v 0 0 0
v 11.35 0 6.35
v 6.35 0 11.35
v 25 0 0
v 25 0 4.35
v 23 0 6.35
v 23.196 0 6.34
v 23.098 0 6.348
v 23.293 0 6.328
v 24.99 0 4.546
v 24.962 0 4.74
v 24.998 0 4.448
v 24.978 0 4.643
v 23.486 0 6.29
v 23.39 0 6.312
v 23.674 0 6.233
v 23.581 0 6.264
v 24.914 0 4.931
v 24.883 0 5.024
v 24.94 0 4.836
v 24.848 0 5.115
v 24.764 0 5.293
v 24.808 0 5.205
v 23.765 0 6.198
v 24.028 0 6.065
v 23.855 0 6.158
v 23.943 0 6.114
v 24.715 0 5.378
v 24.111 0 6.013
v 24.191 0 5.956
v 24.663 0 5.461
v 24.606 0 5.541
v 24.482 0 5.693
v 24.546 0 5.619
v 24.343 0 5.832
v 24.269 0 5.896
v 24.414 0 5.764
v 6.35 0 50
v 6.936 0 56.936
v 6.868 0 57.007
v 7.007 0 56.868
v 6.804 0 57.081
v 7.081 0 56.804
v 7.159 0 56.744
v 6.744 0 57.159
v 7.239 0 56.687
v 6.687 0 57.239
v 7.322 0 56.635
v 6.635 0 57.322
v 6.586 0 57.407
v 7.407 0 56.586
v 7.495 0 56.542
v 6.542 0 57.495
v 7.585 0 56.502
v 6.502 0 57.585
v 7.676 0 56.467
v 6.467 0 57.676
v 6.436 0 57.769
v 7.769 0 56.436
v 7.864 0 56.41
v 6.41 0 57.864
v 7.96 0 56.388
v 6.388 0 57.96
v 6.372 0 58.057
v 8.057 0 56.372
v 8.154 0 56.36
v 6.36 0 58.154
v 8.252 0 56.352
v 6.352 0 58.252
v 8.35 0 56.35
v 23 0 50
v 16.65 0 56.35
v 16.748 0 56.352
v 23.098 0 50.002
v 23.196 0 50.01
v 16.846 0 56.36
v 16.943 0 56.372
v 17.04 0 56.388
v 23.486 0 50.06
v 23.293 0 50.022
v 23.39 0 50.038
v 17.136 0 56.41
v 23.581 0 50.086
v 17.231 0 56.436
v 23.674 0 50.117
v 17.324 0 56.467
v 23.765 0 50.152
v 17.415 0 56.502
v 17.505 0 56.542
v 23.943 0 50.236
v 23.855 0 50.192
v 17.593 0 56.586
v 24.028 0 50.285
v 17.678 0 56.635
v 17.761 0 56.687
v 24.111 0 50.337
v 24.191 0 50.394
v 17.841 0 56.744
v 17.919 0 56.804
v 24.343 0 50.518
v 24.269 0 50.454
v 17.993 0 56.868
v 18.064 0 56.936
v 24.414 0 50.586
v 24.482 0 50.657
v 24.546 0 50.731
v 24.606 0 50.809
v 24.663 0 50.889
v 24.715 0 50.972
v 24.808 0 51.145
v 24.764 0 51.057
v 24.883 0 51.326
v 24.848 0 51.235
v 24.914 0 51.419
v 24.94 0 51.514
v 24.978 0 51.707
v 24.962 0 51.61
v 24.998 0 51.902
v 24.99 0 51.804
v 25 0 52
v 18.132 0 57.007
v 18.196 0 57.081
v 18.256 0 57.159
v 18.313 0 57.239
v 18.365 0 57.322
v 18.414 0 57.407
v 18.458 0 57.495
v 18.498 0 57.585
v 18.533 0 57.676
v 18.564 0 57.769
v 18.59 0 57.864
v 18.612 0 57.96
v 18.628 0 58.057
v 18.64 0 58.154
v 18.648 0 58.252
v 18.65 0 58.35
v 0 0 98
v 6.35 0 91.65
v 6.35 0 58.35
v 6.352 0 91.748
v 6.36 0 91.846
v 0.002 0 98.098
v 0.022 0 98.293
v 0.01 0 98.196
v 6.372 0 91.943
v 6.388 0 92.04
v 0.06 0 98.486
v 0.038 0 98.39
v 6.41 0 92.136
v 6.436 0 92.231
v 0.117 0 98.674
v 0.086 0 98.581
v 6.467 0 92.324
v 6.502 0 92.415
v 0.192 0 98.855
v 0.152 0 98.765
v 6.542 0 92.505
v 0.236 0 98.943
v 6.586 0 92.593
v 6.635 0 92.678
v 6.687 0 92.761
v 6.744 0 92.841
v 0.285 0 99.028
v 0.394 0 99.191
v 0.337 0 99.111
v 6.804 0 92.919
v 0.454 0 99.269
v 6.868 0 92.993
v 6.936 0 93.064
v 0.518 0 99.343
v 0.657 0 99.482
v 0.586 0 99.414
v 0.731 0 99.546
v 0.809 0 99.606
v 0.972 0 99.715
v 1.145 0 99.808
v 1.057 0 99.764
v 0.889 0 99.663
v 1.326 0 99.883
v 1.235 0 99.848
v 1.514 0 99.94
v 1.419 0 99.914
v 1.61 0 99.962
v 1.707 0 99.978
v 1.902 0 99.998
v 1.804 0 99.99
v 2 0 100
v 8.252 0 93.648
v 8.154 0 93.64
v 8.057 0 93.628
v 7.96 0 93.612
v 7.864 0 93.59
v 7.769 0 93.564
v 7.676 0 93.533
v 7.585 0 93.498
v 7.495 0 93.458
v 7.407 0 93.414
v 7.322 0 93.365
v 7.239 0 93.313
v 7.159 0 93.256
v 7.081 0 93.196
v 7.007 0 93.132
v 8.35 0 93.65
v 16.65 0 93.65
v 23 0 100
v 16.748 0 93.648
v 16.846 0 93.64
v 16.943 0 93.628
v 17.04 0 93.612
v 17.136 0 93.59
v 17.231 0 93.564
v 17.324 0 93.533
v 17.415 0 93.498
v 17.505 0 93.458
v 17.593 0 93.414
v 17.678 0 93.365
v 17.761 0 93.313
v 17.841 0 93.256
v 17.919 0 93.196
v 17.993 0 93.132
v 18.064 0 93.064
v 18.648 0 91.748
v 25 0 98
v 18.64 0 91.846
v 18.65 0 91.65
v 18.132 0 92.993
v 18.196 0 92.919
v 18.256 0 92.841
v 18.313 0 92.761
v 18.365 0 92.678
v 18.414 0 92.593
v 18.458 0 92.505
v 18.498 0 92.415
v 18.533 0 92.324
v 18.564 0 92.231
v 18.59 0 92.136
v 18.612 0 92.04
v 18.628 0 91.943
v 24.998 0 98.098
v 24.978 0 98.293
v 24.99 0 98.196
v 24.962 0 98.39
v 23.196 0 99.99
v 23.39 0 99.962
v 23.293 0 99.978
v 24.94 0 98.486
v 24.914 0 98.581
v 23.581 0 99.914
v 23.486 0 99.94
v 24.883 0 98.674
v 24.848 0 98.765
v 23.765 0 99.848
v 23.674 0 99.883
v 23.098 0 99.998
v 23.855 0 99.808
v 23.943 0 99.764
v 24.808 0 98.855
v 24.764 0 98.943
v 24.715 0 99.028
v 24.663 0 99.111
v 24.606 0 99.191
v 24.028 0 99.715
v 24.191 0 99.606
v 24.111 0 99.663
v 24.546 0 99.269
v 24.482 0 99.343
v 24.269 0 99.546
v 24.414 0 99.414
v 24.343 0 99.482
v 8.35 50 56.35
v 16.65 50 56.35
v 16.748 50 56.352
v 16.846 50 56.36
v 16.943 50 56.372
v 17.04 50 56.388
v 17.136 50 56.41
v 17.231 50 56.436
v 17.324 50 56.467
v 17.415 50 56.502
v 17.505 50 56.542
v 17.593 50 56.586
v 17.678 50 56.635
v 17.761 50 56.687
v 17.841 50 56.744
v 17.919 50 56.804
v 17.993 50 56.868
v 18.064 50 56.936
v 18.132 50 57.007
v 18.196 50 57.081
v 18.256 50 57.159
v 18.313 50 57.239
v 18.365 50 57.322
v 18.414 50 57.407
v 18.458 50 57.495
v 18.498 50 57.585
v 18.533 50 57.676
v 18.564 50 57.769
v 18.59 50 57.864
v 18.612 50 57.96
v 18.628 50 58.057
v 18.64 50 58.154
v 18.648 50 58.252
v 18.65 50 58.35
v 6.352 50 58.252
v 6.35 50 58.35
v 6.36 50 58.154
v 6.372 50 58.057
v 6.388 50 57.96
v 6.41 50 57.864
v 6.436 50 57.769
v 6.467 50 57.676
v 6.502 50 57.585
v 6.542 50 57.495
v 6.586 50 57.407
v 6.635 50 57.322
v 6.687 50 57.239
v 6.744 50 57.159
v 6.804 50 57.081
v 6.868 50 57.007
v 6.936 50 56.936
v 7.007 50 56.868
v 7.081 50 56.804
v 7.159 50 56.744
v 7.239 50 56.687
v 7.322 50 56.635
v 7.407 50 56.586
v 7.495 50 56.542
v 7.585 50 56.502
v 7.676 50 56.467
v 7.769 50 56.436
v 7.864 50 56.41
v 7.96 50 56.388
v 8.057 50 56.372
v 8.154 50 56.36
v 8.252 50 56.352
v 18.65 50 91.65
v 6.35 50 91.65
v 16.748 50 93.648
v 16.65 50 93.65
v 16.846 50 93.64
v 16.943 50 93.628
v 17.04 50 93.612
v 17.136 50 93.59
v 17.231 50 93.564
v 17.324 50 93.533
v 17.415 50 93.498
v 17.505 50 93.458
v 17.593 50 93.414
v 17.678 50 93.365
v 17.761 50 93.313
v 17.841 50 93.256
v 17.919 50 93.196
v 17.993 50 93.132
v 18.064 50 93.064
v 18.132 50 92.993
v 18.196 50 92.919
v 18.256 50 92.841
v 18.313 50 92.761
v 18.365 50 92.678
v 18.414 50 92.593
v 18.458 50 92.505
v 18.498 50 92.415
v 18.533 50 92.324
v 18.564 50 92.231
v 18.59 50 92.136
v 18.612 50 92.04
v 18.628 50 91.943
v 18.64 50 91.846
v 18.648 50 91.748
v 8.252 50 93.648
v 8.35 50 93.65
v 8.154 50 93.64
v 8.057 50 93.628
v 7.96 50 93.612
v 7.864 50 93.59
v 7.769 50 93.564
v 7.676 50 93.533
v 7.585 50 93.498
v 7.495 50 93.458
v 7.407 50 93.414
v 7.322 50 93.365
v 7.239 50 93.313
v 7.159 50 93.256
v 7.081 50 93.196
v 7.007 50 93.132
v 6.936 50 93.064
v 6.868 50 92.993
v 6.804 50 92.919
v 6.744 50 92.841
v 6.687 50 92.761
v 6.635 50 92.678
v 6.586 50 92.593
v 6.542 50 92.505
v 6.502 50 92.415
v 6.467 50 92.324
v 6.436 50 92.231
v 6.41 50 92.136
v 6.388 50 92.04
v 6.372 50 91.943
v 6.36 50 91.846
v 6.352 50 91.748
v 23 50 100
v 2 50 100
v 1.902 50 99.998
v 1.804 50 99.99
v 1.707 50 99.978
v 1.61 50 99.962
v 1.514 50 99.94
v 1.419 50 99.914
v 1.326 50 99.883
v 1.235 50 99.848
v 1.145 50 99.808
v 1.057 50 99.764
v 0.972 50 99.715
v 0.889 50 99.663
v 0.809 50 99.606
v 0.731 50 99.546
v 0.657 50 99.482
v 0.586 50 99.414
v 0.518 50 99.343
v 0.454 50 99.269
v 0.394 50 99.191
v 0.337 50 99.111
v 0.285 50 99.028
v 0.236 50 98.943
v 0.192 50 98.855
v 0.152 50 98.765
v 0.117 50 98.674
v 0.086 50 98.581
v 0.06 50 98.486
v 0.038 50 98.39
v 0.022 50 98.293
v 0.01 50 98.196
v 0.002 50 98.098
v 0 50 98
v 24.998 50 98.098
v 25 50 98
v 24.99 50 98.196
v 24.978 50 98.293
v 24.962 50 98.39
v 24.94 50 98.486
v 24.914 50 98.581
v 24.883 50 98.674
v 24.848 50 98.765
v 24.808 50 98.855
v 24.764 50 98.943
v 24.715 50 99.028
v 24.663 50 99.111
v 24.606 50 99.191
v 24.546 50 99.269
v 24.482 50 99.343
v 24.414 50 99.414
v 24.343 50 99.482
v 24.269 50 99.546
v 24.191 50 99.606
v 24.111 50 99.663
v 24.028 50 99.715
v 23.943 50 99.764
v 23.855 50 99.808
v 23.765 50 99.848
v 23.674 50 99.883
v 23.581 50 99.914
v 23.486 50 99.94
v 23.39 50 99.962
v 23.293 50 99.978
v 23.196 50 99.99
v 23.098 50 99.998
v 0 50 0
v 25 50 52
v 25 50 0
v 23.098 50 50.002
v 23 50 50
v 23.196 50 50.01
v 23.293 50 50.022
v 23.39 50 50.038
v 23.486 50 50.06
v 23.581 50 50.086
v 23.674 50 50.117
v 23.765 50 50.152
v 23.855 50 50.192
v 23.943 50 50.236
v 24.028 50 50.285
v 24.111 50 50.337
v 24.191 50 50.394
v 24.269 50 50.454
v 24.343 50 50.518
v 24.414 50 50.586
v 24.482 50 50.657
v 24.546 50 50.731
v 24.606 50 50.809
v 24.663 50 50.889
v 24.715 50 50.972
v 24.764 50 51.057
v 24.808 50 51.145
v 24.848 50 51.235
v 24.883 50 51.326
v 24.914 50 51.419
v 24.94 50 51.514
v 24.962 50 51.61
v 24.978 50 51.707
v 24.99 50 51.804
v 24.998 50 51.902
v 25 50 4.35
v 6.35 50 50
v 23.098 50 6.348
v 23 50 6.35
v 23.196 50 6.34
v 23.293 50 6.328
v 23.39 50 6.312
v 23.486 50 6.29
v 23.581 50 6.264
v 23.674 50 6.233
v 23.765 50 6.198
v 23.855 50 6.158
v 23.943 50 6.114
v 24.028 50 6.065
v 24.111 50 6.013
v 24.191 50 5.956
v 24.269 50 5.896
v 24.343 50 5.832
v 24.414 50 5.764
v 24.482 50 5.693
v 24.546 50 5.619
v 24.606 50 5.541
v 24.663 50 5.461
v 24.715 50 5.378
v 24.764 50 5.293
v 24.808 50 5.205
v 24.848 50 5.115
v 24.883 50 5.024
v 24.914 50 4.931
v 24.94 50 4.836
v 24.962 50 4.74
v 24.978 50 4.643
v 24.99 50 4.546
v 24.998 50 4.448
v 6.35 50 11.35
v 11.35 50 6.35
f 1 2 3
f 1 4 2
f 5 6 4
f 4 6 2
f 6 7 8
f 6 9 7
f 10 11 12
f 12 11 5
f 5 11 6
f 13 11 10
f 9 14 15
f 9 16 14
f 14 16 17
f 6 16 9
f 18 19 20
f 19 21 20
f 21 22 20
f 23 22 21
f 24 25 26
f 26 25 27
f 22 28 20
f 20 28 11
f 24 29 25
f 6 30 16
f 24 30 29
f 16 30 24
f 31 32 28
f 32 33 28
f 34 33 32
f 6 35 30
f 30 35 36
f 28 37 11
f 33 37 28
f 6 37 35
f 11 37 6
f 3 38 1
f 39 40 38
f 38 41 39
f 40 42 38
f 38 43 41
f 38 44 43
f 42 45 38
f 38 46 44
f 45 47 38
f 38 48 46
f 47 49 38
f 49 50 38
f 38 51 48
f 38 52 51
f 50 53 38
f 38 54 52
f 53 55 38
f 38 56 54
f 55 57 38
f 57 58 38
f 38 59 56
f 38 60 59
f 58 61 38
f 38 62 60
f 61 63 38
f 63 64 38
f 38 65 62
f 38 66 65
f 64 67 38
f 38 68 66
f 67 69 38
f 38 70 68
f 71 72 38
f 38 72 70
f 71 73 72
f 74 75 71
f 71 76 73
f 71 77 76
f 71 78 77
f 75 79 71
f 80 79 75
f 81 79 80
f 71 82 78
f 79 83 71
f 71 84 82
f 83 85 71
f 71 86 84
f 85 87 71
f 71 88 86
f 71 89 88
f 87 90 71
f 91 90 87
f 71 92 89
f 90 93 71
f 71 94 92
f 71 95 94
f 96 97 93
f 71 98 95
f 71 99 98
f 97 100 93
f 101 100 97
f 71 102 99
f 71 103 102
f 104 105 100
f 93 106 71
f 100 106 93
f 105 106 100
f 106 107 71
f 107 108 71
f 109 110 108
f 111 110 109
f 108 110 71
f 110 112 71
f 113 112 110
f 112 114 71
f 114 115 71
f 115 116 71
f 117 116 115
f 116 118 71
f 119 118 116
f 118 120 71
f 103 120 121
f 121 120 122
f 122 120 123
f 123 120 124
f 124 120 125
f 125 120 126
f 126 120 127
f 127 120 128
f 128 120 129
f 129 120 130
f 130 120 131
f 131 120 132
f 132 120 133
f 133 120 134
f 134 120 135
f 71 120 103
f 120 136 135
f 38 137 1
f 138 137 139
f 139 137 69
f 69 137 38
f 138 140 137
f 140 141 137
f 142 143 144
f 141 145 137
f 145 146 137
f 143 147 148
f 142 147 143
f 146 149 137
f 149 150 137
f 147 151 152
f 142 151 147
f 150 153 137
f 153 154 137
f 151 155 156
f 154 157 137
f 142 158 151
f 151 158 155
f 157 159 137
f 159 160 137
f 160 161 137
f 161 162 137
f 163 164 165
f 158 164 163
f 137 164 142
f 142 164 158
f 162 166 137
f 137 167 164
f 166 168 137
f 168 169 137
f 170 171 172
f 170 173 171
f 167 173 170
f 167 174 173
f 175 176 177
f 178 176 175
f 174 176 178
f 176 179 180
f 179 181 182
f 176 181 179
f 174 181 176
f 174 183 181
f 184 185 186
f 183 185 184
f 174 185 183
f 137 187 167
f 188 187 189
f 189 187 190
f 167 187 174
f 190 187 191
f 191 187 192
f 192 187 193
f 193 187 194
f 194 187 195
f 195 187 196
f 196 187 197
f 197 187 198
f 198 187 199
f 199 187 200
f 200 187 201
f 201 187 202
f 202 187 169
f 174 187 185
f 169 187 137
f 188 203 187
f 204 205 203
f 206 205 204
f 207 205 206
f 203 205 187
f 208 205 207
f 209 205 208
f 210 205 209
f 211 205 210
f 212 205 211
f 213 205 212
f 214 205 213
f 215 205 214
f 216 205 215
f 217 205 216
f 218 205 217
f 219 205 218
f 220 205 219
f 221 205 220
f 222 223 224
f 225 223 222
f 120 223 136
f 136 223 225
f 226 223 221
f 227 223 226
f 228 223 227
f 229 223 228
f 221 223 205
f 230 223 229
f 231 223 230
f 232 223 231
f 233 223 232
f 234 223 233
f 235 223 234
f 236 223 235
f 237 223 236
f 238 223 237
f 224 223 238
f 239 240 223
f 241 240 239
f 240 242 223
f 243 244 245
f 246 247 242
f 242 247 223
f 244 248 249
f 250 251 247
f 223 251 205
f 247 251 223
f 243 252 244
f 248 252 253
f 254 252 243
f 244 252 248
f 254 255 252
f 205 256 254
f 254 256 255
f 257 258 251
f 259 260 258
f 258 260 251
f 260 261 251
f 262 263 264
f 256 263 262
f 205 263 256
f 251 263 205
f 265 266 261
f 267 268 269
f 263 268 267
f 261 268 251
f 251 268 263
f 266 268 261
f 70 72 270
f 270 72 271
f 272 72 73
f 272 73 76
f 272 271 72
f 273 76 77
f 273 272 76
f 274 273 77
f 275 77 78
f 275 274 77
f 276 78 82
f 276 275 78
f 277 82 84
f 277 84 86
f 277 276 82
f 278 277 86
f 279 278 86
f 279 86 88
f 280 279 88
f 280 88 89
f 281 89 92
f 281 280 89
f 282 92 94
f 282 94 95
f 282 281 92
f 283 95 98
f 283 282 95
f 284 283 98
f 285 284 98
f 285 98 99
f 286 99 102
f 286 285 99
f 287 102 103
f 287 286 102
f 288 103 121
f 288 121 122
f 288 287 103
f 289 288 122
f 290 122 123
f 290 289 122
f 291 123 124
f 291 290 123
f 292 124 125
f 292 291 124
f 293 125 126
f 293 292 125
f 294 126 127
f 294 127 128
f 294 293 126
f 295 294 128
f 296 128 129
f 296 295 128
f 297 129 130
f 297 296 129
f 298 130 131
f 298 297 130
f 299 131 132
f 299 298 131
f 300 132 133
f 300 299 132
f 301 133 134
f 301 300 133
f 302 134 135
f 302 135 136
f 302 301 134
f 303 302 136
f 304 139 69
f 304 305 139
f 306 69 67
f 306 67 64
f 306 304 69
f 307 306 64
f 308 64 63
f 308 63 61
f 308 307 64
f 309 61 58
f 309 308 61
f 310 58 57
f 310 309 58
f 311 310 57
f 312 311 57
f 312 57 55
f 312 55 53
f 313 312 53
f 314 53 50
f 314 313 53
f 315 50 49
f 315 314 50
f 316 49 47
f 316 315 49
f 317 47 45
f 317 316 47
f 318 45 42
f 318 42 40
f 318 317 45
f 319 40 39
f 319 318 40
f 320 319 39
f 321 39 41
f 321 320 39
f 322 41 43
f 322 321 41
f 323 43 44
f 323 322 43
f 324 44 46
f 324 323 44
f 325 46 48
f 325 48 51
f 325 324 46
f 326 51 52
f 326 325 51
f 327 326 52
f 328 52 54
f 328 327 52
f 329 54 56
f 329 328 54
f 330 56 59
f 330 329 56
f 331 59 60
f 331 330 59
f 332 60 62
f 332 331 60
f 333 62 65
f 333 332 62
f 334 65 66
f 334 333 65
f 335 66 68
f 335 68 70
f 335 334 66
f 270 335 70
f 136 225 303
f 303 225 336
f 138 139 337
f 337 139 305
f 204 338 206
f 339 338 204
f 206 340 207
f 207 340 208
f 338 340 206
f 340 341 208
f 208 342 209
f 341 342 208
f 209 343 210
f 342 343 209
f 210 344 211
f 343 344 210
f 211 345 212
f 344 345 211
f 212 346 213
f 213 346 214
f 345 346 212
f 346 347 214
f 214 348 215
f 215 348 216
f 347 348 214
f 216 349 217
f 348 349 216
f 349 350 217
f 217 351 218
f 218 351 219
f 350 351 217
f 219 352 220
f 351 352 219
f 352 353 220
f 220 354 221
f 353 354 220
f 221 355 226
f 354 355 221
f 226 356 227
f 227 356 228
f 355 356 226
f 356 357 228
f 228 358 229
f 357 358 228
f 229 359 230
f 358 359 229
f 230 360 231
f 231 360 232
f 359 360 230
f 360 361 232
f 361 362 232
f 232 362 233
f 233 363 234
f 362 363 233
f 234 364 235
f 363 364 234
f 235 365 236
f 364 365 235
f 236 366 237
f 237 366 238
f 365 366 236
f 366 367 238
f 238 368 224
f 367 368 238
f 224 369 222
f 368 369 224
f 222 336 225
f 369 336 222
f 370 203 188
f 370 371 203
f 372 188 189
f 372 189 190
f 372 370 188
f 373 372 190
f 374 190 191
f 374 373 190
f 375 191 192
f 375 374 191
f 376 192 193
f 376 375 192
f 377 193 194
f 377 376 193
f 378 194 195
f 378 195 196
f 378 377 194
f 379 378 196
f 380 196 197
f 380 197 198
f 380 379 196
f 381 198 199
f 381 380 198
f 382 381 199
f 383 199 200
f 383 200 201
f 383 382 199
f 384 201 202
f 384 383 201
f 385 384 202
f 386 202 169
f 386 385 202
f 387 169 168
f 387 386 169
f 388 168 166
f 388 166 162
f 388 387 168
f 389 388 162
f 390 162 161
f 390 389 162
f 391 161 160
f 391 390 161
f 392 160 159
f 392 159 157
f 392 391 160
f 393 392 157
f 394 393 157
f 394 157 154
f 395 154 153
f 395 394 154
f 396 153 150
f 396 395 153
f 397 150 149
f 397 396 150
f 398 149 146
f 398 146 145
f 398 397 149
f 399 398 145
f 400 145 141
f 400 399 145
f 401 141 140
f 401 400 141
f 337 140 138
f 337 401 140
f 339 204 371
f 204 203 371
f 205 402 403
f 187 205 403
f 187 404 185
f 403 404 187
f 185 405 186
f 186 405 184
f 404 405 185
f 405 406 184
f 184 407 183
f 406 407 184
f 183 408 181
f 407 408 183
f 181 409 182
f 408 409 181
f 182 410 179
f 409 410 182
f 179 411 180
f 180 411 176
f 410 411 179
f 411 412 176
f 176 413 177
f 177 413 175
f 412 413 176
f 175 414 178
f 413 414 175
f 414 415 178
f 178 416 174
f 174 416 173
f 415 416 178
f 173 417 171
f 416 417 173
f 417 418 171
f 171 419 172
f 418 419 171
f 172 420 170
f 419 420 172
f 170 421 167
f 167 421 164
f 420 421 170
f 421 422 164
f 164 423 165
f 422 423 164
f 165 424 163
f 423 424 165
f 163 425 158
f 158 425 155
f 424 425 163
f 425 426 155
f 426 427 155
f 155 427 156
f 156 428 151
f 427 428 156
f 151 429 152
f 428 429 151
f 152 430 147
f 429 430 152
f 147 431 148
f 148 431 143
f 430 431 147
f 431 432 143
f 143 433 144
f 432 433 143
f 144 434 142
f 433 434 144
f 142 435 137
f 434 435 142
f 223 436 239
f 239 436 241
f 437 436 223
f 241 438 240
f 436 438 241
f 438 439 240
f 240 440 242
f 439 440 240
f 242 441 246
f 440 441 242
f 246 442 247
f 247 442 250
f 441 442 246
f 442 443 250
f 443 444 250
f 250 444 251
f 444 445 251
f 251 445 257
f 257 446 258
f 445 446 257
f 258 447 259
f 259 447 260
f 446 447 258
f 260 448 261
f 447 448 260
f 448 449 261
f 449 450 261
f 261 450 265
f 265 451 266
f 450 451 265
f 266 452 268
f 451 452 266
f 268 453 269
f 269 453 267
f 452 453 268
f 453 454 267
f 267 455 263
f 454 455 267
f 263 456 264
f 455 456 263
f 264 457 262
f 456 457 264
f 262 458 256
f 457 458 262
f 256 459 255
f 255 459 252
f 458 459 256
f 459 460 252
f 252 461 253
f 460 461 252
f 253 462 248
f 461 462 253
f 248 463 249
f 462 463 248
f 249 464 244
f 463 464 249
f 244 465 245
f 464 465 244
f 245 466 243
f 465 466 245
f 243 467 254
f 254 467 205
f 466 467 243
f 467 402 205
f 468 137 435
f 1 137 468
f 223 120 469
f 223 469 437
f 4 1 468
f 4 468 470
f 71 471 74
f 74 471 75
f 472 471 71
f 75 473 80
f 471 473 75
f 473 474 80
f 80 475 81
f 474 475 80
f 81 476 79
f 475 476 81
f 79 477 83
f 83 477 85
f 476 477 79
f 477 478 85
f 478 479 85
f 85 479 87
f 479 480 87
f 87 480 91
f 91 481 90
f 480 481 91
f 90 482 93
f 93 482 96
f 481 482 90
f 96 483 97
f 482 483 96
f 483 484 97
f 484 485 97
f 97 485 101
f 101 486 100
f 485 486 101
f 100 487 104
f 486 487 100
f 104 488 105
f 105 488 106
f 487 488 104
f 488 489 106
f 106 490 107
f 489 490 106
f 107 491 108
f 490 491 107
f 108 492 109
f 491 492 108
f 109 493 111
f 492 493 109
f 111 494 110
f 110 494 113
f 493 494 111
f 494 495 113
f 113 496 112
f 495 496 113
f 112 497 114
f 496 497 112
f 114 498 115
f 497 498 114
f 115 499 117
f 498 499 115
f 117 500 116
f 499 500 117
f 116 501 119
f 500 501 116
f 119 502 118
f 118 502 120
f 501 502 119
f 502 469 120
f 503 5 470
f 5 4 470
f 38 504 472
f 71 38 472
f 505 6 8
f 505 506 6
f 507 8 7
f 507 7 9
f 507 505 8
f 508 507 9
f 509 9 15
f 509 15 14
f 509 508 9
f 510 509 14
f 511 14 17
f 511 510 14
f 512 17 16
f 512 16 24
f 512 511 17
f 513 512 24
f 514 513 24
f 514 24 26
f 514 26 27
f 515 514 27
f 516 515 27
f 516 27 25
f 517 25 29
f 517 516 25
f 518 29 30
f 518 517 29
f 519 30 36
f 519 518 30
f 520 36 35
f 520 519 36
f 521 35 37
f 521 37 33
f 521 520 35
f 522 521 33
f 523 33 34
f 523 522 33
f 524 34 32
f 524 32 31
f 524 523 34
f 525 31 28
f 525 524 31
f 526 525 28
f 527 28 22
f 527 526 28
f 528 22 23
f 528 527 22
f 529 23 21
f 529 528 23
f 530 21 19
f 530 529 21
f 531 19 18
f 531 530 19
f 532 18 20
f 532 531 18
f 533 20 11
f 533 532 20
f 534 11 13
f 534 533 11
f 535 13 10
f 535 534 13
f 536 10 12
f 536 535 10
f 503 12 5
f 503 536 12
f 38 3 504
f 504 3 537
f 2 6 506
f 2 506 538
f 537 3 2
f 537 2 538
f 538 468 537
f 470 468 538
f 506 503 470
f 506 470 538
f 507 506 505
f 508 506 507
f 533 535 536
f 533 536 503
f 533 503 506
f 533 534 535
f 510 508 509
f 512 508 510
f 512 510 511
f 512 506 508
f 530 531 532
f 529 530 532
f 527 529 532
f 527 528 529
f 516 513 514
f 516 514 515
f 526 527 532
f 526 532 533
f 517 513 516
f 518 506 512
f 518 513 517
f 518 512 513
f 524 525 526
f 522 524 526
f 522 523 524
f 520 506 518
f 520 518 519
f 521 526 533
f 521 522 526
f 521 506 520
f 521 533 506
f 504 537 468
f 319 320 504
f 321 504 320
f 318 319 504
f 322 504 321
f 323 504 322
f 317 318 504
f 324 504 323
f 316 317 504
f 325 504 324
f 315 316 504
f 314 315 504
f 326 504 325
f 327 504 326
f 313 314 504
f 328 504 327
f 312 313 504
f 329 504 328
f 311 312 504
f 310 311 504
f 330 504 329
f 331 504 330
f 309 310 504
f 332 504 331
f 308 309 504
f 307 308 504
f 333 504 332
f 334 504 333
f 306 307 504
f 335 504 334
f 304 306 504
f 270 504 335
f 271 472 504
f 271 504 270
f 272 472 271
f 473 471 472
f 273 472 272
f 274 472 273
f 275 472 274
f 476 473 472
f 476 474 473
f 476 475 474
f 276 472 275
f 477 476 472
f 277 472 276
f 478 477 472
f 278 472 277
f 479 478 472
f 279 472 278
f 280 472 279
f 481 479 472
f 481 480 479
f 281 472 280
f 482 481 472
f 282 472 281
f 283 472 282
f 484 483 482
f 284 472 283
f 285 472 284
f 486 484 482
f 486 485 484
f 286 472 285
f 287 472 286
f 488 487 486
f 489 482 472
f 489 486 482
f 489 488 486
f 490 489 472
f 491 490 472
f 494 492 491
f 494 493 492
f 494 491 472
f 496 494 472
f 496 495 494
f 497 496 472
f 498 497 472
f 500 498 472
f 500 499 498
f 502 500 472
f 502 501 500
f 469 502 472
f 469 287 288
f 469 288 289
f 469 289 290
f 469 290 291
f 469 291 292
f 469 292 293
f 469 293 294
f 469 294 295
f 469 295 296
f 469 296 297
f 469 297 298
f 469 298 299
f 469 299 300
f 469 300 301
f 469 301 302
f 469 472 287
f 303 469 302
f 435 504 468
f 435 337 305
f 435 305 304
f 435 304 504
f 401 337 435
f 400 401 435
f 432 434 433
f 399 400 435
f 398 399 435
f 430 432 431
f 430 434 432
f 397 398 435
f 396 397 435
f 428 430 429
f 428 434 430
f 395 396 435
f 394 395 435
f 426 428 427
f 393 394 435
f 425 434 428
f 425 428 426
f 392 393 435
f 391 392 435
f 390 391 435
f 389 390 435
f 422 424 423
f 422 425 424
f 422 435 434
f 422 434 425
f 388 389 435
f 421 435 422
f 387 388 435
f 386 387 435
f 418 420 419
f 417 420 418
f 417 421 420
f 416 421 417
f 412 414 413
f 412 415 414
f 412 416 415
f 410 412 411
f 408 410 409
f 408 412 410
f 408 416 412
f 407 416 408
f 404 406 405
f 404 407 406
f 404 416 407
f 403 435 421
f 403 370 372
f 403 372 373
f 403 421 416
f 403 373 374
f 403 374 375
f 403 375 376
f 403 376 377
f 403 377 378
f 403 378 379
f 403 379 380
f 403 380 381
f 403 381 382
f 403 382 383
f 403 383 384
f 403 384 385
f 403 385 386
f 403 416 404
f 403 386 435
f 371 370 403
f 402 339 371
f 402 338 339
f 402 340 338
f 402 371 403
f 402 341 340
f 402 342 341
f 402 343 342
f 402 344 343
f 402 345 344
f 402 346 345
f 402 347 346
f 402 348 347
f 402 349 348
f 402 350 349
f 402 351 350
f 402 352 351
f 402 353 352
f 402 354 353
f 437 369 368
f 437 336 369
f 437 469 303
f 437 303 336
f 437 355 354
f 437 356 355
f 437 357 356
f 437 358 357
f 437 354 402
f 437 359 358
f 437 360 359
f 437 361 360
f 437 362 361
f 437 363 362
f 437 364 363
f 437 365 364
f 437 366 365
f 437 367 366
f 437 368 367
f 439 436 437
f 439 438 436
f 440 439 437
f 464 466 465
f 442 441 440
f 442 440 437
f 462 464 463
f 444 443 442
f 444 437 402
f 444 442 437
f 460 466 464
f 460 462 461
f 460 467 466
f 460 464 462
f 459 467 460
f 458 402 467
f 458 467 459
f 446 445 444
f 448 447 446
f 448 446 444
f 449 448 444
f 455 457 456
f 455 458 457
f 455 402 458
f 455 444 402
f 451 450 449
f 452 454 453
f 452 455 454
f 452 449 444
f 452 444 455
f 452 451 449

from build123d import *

# Parameters (mm, degrees)
BINDER_FACE1_W = 12.3
BINDER_FACE1_H = 37.3
PAD_DEPTH      = 50
CHAMFER_SIZE   = 5
FILLET_R       = 2
FILLET001_R    = 2
FILLET002_R    = 2
FILLET003_R    = 2
FILLET004_R    = 2
FILLET005_R    = 2
FILLET006_R    = 2
FILLET007_R    = 2


with BuildPart() as part:
    # Binder Face1 → Pad (new)
    with BuildSketch(Plane(origin=(10.393732, 0, 55.131766), x_dir=(1, 0, 0), z_dir=(0, 1, 0))):
        Polygon((14.606268, 5.131766), (-4.043732, 5.131766), (-4.043732, 48.781766), (14.606268, 48.781766), (14.606268, 55.131766), (-10.393732, 55.131766), (-10.393732, -44.868234), (14.606268, -44.868234), align=None)
        with Locations((2.106268, -19.868234)):
            Rectangle(BINDER_FACE1_W, BINDER_FACE1_H, mode=Mode.SUBTRACT)
    extrude(amount=PAD_DEPTH)

    # Chamfer
    chamfer_edges = [part.edges().sort_by_distance(p)[0] for p in [
        (6.35, 25, 6.35),
    ]]
    chamfer(chamfer_edges, length=CHAMFER_SIZE)

    # Fillet
    fillet_edges = [part.edges().sort_by_distance(p)[0] for p in [
        (25, 25, 6.35),
    ]]
    fillet(fillet_edges, radius=FILLET_R)

    # Fillet001
    fillet001_edges = [part.edges().sort_by_distance(p)[0] for p in [
        (25, 25, 50),
    ]]
    fillet(fillet001_edges, radius=FILLET001_R)

    # Fillet002
    fillet002_edges = [part.edges().sort_by_distance(p)[0] for p in [
        (25, 25, 100),
    ]]
    fillet(fillet002_edges, radius=FILLET002_R)

    # Fillet003
    fillet003_edges = [part.edges().sort_by_distance(p)[0] for p in [
        (0, 25, 100),
    ]]
    fillet(fillet003_edges, radius=FILLET003_R)

    # Fillet004
    fillet004_edges = [part.edges().sort_by_distance(p)[0] for p in [
        (6.35, 25, 93.65),
    ]]
    fillet(fillet004_edges, radius=FILLET004_R)

    # Fillet005
    fillet005_edges = [part.edges().sort_by_distance(p)[0] for p in [
        (18.65, 25, 93.65),
    ]]
    fillet(fillet005_edges, radius=FILLET005_R)

    # Fillet006
    fillet006_edges = [part.edges().sort_by_distance(p)[0] for p in [
        (6.35, 25, 56.35),
    ]]
    fillet(fillet006_edges, radius=FILLET006_R)

    # Fillet007
    fillet007_edges = [part.edges().sort_by_distance(p)[0] for p in [
        (18.65, 25, 56.35),
    ]]
    fillet(fillet007_edges, radius=FILLET007_R)


solid = part.part
